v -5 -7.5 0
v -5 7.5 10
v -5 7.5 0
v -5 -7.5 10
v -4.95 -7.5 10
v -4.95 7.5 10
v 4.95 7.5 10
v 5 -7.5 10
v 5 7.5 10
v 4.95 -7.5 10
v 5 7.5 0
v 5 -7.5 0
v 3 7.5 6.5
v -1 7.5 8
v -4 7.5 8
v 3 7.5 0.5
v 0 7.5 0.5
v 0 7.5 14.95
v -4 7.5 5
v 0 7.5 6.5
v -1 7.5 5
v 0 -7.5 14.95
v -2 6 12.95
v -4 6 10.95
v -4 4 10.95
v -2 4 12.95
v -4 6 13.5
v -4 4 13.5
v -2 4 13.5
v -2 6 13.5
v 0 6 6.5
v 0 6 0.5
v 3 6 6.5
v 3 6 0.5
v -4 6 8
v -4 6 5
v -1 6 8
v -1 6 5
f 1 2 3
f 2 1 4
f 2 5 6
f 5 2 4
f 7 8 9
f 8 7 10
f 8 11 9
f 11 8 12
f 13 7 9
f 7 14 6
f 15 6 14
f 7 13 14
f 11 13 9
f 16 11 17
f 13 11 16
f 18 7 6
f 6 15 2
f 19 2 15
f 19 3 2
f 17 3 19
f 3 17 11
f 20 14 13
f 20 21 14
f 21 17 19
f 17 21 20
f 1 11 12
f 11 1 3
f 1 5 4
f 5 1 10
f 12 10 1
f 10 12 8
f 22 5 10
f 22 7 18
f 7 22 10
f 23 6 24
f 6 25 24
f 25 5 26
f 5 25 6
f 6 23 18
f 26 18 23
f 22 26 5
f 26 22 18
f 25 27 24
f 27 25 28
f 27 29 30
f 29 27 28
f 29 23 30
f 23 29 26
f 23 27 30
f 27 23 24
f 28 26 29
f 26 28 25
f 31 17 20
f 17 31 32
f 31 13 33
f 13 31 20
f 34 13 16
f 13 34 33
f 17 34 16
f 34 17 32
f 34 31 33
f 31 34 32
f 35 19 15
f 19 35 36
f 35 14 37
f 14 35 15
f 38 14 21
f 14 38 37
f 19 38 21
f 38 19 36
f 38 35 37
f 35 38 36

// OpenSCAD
    difference(){
    translate([0,0,5]){color("orange") cube([10, 15, 10],center=true);
    translate([0,0,5])rotate([0,45,0])color("orange") cube([7, 15, 7],center=true);
   translate([-3,5,7])color("orange") cube([2, 2, 3],center=true);
   translate([0,0,5])rotate([0,-45,0])color("orange") cube([7, 15, 7],center=true);}
   translate([0,6,0.5])cube([3,4,6]);
   translate([-4,6,5])cube([3,3,3]);}
   
    
    
